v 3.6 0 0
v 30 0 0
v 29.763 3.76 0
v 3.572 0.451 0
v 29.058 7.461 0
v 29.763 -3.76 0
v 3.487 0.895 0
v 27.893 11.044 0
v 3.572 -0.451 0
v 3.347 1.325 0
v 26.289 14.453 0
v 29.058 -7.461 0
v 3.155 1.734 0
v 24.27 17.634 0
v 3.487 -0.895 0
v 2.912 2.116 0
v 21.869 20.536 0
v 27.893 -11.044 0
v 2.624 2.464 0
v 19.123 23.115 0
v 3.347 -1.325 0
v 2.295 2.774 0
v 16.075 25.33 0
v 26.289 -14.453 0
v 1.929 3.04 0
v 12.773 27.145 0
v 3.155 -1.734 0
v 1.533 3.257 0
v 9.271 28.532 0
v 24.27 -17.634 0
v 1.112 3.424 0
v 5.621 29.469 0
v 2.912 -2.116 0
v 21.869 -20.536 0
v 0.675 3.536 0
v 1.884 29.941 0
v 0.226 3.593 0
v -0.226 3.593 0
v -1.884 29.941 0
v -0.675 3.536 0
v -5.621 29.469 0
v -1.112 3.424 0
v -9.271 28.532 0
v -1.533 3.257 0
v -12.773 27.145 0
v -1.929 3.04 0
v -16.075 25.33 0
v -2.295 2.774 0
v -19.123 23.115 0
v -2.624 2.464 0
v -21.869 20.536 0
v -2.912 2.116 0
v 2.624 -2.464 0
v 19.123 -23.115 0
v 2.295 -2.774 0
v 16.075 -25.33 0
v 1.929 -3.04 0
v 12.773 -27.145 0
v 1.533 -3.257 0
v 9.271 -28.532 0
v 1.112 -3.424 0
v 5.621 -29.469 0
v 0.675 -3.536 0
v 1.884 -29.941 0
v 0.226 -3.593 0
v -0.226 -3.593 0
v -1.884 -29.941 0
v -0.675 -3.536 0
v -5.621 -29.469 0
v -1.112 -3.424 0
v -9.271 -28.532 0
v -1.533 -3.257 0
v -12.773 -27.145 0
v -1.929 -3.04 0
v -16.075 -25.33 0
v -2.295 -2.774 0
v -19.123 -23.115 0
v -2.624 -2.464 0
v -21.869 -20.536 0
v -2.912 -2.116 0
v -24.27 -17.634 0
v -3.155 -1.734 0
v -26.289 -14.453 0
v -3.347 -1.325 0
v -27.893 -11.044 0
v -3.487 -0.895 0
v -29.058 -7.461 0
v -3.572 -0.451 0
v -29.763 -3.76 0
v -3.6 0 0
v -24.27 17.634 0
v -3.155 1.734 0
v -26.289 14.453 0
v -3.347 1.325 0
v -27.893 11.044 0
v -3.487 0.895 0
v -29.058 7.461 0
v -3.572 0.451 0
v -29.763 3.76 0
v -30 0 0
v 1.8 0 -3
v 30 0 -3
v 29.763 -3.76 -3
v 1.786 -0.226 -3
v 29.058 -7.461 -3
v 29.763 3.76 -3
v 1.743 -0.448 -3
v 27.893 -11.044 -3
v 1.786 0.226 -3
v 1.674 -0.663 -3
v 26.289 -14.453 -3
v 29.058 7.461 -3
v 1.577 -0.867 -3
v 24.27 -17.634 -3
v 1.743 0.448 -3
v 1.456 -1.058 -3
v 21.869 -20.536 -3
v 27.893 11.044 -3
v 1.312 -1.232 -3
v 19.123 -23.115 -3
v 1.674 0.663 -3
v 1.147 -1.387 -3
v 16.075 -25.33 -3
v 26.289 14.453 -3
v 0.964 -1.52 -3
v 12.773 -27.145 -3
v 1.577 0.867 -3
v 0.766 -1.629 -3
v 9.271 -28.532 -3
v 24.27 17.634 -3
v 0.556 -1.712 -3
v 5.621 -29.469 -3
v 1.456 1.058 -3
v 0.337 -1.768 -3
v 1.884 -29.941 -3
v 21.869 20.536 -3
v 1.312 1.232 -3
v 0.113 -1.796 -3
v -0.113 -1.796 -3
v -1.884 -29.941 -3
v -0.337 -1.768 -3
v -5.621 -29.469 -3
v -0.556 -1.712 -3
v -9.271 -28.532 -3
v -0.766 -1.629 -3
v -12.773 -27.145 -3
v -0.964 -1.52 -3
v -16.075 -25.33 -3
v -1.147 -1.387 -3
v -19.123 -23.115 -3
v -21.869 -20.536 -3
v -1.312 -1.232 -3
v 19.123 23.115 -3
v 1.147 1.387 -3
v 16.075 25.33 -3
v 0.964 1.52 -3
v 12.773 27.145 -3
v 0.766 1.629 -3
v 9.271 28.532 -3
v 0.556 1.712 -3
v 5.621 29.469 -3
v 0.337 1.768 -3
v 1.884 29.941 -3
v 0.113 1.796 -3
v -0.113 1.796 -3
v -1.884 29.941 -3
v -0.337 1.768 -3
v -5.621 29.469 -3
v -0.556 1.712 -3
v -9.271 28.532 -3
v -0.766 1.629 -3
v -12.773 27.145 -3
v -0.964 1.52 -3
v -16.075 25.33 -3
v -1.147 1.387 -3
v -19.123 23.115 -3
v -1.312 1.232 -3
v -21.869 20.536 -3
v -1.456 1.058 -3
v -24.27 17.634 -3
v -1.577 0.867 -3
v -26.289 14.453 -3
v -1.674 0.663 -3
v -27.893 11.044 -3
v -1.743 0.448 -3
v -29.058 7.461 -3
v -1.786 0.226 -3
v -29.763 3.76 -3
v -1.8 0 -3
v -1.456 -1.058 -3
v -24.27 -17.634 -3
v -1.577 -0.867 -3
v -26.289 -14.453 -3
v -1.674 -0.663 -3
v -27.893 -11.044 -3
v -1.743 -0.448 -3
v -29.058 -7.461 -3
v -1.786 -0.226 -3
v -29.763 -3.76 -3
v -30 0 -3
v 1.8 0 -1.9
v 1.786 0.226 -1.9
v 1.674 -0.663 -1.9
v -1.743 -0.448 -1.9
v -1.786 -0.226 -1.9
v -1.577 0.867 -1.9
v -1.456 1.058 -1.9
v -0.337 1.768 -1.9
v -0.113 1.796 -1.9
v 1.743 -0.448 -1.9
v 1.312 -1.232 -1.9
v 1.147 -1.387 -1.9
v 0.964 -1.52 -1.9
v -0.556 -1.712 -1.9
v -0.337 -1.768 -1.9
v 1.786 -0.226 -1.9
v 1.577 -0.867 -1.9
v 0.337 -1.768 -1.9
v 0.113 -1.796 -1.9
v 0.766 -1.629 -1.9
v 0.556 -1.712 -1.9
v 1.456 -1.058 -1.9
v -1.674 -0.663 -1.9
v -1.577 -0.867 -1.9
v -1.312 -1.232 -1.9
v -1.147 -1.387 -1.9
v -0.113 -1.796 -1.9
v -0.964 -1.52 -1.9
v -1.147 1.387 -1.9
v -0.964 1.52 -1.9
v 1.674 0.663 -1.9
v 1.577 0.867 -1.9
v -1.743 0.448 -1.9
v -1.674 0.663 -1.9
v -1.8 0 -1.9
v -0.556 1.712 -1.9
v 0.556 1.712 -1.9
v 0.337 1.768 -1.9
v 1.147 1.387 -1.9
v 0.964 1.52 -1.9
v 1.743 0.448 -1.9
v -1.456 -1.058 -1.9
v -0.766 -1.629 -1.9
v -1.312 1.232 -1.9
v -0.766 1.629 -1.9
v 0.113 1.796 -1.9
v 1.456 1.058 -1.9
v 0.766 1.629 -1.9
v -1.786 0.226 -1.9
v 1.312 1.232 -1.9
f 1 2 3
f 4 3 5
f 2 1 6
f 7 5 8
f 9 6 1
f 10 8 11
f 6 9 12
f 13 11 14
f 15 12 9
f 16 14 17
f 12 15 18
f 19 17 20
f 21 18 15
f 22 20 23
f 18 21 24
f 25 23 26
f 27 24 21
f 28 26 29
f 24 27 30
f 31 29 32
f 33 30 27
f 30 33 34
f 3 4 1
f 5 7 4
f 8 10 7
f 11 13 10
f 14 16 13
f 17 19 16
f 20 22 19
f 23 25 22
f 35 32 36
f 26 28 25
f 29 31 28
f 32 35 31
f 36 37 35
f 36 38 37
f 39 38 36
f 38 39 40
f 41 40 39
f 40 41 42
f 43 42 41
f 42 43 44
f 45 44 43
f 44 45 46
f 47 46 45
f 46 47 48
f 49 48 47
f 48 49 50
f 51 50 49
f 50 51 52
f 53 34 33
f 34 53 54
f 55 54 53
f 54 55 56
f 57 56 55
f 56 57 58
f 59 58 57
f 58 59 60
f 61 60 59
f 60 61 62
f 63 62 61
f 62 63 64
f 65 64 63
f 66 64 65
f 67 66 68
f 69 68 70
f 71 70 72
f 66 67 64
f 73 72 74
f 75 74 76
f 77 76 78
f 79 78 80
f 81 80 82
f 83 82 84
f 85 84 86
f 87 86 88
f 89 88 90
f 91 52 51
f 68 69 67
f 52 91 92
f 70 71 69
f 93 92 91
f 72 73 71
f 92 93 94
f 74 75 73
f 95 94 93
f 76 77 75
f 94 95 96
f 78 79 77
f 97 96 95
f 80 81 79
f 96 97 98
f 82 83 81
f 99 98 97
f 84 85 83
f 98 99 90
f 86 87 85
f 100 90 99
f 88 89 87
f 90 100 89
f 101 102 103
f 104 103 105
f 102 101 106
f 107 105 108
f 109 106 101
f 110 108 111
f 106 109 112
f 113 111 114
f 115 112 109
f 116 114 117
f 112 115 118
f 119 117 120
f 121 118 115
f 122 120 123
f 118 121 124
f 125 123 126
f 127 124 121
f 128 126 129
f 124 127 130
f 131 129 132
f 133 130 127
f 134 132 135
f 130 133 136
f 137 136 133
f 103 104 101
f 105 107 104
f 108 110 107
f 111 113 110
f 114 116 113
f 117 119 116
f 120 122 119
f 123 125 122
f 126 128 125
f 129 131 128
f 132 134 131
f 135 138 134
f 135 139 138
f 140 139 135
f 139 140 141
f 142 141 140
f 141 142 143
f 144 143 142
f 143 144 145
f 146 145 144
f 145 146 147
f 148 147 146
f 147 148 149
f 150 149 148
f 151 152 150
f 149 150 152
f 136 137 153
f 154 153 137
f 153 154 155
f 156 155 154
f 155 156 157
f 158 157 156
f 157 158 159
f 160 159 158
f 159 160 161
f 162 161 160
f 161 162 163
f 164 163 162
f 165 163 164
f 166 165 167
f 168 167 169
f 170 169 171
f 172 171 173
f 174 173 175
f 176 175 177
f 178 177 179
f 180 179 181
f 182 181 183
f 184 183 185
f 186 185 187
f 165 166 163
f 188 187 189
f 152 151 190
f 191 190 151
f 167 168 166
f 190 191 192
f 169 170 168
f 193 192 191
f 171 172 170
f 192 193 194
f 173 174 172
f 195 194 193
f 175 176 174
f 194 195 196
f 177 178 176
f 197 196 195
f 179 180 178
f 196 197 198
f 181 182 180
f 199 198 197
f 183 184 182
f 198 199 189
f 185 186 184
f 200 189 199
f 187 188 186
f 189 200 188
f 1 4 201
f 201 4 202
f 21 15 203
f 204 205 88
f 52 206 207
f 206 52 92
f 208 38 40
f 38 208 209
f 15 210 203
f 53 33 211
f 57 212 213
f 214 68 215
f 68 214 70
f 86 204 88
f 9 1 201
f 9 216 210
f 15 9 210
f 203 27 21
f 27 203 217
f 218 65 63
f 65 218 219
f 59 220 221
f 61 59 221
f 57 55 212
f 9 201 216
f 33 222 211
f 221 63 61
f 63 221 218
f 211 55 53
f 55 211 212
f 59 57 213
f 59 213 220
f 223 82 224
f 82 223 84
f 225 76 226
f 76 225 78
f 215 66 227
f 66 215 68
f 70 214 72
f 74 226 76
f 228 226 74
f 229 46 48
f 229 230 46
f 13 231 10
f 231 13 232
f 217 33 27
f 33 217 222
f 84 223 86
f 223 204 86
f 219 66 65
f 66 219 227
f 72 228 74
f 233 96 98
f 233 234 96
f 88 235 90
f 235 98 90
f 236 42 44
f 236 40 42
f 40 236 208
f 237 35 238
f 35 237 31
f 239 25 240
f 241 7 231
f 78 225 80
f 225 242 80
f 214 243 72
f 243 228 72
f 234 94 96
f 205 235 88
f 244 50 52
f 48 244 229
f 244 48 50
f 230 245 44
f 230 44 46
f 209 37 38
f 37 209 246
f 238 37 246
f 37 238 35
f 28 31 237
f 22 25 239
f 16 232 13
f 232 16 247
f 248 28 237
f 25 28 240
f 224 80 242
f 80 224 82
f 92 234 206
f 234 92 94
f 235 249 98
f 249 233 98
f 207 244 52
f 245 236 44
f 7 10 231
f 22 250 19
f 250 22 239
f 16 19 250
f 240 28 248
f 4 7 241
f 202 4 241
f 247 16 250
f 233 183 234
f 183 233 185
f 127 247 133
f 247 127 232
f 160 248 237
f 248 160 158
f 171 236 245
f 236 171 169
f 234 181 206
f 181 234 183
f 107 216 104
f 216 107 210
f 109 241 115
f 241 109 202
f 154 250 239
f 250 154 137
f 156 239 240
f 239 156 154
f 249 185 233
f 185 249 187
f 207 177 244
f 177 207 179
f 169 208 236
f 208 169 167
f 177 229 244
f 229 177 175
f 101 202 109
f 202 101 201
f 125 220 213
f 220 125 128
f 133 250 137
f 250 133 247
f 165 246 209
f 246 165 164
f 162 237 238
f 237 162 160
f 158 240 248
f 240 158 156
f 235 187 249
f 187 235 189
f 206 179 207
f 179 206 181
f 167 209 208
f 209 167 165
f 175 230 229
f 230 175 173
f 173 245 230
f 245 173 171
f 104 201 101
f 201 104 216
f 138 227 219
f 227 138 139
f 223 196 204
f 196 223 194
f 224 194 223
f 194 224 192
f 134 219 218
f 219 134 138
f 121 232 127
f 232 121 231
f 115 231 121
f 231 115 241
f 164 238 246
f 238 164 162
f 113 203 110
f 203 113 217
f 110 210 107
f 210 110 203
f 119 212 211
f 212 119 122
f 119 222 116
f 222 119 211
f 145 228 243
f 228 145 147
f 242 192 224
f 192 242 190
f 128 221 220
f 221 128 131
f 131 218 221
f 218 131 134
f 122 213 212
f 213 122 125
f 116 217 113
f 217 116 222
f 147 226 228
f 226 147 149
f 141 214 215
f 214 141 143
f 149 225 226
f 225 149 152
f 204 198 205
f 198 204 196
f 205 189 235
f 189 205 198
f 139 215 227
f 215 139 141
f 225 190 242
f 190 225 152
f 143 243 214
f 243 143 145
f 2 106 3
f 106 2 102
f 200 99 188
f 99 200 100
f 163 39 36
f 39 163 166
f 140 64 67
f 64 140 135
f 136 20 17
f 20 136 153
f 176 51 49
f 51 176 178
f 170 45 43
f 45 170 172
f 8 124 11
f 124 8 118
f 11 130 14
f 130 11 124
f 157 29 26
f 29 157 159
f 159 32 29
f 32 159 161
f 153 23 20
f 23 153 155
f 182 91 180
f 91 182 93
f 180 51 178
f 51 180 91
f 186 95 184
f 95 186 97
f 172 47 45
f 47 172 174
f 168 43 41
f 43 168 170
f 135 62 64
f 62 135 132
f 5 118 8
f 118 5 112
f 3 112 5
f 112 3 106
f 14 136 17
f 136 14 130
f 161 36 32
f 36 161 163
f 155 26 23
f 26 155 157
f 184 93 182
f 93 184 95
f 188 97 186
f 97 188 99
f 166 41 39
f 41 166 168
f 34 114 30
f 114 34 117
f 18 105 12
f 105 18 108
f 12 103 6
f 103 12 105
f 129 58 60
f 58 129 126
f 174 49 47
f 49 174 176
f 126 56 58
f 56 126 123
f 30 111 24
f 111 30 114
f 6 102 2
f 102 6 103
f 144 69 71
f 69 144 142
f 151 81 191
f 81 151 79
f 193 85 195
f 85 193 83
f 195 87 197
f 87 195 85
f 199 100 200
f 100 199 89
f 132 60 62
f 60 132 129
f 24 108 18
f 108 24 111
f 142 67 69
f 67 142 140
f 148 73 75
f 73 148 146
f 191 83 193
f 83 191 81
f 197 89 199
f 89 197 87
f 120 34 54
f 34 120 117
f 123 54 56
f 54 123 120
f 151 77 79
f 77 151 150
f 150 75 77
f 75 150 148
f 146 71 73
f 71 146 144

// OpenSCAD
$fn = 50;


difference() {
	union() {
		translate(v = [0, 0, -3.0000000000]) {
			cylinder(h = 3, r = 30.0000000000);
		}
	}
	union() {
		translate(v = [0, 0, 0]) {
			rotate(a = [0, 0, 0]) {
				difference() {
					union() {
						translate(v = [0, 0, -3.0000000000]) {
							cylinder(h = 3, r = 1.5000000000);
						}
						translate(v = [0, 0, -1.9000000000]) {
							cylinder(h = 1.9000000000, r1 = 1.8000000000, r2 = 3.6000000000);
						}
						translate(v = [0, 0, -3.0000000000]) {
							cylinder(h = 3, r = 1.8000000000);
						}
						translate(v = [0, 0, -3.0000000000]) {
							cylinder(h = 3, r = 1.5000000000);
						}
					}
					union();
				}
			}
		}
	}
}
